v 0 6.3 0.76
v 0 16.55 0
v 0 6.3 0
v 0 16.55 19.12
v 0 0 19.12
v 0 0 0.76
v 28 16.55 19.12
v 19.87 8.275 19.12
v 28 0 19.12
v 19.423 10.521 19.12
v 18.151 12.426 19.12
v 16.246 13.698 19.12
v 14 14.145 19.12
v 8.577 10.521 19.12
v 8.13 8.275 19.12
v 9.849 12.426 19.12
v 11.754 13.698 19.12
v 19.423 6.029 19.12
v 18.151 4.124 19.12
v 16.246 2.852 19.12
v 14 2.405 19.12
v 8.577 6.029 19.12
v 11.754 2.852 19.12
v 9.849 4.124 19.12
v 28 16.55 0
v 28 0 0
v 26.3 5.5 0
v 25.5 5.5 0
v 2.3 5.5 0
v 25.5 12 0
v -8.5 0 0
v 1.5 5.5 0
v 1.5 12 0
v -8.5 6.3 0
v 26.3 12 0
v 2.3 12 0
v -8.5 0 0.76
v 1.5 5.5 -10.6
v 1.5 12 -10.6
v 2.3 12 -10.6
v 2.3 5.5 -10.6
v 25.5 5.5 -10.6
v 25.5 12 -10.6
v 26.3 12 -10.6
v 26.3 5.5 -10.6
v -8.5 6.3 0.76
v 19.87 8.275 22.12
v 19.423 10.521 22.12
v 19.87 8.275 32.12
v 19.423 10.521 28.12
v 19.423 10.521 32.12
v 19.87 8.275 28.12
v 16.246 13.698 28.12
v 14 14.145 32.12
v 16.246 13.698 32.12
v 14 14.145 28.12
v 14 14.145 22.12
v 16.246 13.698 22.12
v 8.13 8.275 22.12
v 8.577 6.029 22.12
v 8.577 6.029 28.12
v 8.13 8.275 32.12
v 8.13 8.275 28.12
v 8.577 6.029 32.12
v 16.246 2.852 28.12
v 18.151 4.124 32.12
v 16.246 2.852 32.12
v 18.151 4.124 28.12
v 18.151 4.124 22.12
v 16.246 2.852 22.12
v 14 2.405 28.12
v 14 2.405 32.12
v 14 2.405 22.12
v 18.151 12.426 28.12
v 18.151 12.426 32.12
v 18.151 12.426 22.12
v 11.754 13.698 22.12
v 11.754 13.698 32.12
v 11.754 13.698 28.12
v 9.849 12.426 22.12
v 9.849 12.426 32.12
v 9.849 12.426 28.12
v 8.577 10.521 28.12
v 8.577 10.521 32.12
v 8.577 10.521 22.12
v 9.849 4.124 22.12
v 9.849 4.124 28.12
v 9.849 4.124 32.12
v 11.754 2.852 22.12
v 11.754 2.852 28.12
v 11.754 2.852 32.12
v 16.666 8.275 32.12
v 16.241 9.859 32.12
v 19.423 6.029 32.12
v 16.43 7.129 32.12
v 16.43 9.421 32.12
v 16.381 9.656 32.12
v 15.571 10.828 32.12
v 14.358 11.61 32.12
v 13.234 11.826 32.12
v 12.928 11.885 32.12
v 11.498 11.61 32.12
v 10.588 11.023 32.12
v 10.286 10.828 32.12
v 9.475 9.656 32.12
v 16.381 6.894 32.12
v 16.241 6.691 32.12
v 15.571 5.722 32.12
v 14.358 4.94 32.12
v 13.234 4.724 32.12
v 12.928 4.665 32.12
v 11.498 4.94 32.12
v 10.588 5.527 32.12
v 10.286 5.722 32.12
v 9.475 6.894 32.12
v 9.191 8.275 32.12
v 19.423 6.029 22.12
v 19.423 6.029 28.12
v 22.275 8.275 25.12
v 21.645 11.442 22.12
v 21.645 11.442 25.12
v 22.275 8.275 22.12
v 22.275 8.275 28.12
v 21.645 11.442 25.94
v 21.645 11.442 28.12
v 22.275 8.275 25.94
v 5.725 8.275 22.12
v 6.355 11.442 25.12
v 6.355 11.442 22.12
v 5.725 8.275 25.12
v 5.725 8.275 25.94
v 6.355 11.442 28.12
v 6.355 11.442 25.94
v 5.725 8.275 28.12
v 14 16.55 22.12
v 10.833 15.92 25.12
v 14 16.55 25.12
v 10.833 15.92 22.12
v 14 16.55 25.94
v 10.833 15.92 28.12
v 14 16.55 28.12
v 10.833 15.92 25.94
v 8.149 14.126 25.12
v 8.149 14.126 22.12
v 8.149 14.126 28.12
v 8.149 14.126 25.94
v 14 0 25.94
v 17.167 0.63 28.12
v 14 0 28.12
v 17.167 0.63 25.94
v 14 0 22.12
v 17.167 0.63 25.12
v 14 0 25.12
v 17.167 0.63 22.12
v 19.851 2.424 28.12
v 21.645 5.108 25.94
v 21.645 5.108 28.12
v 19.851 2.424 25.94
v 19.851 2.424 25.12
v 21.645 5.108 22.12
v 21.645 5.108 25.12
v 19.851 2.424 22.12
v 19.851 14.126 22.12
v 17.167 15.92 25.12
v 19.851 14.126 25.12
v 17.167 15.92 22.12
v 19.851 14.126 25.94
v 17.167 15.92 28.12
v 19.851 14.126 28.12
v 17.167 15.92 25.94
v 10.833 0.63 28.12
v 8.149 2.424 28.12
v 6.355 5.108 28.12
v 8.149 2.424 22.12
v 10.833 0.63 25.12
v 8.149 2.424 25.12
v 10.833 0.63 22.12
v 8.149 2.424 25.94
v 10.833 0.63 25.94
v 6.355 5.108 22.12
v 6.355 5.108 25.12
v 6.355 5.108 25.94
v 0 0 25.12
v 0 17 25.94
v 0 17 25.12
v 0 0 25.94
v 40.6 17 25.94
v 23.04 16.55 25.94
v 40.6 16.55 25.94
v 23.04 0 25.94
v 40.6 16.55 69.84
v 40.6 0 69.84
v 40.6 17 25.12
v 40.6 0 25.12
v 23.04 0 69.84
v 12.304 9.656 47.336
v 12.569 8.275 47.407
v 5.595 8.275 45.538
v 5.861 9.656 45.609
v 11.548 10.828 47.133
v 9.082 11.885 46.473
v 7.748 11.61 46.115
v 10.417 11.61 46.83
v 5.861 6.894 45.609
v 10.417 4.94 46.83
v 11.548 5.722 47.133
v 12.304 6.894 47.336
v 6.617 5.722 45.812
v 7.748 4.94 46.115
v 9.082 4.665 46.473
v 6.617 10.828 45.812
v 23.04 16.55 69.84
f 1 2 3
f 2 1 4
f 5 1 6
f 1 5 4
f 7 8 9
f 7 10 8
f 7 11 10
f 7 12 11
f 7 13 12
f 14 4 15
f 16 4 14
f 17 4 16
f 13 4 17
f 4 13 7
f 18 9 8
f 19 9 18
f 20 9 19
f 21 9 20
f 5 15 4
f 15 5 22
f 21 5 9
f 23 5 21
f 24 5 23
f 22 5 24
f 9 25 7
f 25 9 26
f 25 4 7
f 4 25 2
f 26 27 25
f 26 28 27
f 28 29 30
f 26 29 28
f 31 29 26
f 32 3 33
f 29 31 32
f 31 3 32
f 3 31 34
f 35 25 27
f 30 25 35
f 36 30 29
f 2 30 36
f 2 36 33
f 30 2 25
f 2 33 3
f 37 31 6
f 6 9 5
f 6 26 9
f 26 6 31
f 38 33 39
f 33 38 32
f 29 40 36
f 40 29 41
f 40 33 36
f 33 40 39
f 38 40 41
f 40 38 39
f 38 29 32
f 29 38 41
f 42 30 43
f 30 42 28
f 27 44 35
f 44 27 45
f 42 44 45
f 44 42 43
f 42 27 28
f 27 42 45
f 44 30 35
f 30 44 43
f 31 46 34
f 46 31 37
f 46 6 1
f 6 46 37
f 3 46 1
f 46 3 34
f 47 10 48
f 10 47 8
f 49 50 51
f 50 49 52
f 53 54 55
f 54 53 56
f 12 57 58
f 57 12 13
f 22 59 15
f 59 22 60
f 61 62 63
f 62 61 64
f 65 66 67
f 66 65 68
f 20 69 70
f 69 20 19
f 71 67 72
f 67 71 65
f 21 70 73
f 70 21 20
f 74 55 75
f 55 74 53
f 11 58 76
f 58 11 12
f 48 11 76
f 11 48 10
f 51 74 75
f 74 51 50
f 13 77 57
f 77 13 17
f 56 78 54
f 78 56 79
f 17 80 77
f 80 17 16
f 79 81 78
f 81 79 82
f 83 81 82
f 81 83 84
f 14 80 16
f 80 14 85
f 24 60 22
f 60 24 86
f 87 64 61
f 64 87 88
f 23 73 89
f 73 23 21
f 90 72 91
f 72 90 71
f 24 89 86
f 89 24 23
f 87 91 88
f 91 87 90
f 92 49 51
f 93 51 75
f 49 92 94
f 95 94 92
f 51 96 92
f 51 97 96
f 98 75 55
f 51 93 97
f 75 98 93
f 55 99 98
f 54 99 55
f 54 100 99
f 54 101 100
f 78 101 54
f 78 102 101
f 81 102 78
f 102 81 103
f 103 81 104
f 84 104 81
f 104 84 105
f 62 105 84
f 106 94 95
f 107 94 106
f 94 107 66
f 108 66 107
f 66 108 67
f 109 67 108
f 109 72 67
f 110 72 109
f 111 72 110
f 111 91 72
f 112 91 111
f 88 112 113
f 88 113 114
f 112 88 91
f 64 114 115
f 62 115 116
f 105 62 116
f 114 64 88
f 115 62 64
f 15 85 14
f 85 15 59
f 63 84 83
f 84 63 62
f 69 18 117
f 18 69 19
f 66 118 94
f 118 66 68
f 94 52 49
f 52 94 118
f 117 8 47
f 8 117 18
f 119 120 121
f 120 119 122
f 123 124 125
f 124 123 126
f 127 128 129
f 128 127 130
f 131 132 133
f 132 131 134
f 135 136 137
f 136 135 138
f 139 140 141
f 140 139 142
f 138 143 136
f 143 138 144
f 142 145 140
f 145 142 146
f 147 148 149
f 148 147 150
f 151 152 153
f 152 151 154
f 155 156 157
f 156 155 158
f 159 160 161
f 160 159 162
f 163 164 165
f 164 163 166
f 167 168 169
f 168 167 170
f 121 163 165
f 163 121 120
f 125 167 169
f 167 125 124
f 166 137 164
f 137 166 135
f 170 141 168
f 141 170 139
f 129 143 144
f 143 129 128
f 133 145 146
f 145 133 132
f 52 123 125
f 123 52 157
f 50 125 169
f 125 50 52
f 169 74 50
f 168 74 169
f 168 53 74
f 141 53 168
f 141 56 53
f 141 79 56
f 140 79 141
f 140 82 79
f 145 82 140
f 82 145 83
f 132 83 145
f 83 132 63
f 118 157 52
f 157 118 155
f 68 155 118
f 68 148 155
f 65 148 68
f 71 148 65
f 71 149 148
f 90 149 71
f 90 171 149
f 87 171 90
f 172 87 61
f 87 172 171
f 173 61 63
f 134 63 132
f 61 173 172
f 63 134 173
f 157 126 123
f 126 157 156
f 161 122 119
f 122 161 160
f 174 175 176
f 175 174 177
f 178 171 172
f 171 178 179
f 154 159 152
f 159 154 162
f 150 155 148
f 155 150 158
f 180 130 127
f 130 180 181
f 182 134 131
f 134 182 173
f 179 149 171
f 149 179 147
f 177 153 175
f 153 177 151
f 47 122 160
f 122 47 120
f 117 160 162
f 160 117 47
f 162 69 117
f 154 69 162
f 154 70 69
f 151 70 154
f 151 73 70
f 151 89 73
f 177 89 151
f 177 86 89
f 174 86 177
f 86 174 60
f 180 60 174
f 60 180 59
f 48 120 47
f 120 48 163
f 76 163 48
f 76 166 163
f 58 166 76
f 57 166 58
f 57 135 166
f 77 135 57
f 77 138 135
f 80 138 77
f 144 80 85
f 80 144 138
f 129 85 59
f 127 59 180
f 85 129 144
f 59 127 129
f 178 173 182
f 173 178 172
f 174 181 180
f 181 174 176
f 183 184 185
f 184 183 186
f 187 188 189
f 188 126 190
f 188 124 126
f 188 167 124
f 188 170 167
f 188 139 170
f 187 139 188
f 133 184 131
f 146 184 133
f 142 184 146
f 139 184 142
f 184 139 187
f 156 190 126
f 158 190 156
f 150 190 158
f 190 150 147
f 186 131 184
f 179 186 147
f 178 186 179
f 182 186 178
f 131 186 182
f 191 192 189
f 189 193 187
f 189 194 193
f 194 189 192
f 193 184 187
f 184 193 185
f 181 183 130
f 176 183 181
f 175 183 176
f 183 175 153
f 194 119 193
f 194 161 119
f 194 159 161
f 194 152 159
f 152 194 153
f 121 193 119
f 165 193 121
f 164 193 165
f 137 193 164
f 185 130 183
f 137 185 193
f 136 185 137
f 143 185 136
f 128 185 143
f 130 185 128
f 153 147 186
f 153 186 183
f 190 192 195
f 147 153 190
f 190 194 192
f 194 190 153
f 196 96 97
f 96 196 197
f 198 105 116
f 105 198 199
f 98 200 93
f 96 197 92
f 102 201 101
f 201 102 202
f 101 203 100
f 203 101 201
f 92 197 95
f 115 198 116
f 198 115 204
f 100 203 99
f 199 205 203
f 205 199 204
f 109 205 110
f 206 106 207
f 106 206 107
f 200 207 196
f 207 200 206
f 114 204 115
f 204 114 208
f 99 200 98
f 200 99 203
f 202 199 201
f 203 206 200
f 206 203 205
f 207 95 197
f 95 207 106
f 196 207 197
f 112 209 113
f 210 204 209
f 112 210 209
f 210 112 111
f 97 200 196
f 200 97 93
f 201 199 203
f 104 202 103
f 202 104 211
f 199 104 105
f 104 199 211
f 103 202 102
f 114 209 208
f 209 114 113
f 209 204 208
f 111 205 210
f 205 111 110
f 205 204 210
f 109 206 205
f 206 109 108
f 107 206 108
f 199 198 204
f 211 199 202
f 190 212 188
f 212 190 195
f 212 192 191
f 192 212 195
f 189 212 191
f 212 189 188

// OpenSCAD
// A toggle switch ordered from https://www.sparkfun.com/products/11310

$fn = 16;

length = 28;
width = 16.55;
height = 19.12;

module base() {
    cube([length, width, height]);
    translate([1.5, 5.5, -10.6]) cube([.8, 6.5, 10.6]);
    translate([25.5, 5.5, -10.6]) cube([.8, 6.5, 10.6]);
    translate([-8.5, 0, 0]) cube([8.5, 6.3, .76]);
}

module shaft() {
    translate([length/2, width/2, height]) cylinder(h = 13, r = 11.74 / 2);
    translate([length/2, width/2, height + 3]) cylinder(h = 6, r = 16.55 / 2);
}

module plate() {
    translate([0, 0, height + 6]) cube([40.6, 17, .82]);
}

module toggle() {
    translate([length/2, width/2, height + 9]) rotate([0, -15, 0]) {
        cylinder(h = 19, r = 7.22/2);    
    }
}

module cover() {
    color("red") translate([40.6 - 17.56, 0, height + 6.82]) cube([17.56, width, 43.9]);
}

base();
shaft();
plate();
toggle();
cover();
